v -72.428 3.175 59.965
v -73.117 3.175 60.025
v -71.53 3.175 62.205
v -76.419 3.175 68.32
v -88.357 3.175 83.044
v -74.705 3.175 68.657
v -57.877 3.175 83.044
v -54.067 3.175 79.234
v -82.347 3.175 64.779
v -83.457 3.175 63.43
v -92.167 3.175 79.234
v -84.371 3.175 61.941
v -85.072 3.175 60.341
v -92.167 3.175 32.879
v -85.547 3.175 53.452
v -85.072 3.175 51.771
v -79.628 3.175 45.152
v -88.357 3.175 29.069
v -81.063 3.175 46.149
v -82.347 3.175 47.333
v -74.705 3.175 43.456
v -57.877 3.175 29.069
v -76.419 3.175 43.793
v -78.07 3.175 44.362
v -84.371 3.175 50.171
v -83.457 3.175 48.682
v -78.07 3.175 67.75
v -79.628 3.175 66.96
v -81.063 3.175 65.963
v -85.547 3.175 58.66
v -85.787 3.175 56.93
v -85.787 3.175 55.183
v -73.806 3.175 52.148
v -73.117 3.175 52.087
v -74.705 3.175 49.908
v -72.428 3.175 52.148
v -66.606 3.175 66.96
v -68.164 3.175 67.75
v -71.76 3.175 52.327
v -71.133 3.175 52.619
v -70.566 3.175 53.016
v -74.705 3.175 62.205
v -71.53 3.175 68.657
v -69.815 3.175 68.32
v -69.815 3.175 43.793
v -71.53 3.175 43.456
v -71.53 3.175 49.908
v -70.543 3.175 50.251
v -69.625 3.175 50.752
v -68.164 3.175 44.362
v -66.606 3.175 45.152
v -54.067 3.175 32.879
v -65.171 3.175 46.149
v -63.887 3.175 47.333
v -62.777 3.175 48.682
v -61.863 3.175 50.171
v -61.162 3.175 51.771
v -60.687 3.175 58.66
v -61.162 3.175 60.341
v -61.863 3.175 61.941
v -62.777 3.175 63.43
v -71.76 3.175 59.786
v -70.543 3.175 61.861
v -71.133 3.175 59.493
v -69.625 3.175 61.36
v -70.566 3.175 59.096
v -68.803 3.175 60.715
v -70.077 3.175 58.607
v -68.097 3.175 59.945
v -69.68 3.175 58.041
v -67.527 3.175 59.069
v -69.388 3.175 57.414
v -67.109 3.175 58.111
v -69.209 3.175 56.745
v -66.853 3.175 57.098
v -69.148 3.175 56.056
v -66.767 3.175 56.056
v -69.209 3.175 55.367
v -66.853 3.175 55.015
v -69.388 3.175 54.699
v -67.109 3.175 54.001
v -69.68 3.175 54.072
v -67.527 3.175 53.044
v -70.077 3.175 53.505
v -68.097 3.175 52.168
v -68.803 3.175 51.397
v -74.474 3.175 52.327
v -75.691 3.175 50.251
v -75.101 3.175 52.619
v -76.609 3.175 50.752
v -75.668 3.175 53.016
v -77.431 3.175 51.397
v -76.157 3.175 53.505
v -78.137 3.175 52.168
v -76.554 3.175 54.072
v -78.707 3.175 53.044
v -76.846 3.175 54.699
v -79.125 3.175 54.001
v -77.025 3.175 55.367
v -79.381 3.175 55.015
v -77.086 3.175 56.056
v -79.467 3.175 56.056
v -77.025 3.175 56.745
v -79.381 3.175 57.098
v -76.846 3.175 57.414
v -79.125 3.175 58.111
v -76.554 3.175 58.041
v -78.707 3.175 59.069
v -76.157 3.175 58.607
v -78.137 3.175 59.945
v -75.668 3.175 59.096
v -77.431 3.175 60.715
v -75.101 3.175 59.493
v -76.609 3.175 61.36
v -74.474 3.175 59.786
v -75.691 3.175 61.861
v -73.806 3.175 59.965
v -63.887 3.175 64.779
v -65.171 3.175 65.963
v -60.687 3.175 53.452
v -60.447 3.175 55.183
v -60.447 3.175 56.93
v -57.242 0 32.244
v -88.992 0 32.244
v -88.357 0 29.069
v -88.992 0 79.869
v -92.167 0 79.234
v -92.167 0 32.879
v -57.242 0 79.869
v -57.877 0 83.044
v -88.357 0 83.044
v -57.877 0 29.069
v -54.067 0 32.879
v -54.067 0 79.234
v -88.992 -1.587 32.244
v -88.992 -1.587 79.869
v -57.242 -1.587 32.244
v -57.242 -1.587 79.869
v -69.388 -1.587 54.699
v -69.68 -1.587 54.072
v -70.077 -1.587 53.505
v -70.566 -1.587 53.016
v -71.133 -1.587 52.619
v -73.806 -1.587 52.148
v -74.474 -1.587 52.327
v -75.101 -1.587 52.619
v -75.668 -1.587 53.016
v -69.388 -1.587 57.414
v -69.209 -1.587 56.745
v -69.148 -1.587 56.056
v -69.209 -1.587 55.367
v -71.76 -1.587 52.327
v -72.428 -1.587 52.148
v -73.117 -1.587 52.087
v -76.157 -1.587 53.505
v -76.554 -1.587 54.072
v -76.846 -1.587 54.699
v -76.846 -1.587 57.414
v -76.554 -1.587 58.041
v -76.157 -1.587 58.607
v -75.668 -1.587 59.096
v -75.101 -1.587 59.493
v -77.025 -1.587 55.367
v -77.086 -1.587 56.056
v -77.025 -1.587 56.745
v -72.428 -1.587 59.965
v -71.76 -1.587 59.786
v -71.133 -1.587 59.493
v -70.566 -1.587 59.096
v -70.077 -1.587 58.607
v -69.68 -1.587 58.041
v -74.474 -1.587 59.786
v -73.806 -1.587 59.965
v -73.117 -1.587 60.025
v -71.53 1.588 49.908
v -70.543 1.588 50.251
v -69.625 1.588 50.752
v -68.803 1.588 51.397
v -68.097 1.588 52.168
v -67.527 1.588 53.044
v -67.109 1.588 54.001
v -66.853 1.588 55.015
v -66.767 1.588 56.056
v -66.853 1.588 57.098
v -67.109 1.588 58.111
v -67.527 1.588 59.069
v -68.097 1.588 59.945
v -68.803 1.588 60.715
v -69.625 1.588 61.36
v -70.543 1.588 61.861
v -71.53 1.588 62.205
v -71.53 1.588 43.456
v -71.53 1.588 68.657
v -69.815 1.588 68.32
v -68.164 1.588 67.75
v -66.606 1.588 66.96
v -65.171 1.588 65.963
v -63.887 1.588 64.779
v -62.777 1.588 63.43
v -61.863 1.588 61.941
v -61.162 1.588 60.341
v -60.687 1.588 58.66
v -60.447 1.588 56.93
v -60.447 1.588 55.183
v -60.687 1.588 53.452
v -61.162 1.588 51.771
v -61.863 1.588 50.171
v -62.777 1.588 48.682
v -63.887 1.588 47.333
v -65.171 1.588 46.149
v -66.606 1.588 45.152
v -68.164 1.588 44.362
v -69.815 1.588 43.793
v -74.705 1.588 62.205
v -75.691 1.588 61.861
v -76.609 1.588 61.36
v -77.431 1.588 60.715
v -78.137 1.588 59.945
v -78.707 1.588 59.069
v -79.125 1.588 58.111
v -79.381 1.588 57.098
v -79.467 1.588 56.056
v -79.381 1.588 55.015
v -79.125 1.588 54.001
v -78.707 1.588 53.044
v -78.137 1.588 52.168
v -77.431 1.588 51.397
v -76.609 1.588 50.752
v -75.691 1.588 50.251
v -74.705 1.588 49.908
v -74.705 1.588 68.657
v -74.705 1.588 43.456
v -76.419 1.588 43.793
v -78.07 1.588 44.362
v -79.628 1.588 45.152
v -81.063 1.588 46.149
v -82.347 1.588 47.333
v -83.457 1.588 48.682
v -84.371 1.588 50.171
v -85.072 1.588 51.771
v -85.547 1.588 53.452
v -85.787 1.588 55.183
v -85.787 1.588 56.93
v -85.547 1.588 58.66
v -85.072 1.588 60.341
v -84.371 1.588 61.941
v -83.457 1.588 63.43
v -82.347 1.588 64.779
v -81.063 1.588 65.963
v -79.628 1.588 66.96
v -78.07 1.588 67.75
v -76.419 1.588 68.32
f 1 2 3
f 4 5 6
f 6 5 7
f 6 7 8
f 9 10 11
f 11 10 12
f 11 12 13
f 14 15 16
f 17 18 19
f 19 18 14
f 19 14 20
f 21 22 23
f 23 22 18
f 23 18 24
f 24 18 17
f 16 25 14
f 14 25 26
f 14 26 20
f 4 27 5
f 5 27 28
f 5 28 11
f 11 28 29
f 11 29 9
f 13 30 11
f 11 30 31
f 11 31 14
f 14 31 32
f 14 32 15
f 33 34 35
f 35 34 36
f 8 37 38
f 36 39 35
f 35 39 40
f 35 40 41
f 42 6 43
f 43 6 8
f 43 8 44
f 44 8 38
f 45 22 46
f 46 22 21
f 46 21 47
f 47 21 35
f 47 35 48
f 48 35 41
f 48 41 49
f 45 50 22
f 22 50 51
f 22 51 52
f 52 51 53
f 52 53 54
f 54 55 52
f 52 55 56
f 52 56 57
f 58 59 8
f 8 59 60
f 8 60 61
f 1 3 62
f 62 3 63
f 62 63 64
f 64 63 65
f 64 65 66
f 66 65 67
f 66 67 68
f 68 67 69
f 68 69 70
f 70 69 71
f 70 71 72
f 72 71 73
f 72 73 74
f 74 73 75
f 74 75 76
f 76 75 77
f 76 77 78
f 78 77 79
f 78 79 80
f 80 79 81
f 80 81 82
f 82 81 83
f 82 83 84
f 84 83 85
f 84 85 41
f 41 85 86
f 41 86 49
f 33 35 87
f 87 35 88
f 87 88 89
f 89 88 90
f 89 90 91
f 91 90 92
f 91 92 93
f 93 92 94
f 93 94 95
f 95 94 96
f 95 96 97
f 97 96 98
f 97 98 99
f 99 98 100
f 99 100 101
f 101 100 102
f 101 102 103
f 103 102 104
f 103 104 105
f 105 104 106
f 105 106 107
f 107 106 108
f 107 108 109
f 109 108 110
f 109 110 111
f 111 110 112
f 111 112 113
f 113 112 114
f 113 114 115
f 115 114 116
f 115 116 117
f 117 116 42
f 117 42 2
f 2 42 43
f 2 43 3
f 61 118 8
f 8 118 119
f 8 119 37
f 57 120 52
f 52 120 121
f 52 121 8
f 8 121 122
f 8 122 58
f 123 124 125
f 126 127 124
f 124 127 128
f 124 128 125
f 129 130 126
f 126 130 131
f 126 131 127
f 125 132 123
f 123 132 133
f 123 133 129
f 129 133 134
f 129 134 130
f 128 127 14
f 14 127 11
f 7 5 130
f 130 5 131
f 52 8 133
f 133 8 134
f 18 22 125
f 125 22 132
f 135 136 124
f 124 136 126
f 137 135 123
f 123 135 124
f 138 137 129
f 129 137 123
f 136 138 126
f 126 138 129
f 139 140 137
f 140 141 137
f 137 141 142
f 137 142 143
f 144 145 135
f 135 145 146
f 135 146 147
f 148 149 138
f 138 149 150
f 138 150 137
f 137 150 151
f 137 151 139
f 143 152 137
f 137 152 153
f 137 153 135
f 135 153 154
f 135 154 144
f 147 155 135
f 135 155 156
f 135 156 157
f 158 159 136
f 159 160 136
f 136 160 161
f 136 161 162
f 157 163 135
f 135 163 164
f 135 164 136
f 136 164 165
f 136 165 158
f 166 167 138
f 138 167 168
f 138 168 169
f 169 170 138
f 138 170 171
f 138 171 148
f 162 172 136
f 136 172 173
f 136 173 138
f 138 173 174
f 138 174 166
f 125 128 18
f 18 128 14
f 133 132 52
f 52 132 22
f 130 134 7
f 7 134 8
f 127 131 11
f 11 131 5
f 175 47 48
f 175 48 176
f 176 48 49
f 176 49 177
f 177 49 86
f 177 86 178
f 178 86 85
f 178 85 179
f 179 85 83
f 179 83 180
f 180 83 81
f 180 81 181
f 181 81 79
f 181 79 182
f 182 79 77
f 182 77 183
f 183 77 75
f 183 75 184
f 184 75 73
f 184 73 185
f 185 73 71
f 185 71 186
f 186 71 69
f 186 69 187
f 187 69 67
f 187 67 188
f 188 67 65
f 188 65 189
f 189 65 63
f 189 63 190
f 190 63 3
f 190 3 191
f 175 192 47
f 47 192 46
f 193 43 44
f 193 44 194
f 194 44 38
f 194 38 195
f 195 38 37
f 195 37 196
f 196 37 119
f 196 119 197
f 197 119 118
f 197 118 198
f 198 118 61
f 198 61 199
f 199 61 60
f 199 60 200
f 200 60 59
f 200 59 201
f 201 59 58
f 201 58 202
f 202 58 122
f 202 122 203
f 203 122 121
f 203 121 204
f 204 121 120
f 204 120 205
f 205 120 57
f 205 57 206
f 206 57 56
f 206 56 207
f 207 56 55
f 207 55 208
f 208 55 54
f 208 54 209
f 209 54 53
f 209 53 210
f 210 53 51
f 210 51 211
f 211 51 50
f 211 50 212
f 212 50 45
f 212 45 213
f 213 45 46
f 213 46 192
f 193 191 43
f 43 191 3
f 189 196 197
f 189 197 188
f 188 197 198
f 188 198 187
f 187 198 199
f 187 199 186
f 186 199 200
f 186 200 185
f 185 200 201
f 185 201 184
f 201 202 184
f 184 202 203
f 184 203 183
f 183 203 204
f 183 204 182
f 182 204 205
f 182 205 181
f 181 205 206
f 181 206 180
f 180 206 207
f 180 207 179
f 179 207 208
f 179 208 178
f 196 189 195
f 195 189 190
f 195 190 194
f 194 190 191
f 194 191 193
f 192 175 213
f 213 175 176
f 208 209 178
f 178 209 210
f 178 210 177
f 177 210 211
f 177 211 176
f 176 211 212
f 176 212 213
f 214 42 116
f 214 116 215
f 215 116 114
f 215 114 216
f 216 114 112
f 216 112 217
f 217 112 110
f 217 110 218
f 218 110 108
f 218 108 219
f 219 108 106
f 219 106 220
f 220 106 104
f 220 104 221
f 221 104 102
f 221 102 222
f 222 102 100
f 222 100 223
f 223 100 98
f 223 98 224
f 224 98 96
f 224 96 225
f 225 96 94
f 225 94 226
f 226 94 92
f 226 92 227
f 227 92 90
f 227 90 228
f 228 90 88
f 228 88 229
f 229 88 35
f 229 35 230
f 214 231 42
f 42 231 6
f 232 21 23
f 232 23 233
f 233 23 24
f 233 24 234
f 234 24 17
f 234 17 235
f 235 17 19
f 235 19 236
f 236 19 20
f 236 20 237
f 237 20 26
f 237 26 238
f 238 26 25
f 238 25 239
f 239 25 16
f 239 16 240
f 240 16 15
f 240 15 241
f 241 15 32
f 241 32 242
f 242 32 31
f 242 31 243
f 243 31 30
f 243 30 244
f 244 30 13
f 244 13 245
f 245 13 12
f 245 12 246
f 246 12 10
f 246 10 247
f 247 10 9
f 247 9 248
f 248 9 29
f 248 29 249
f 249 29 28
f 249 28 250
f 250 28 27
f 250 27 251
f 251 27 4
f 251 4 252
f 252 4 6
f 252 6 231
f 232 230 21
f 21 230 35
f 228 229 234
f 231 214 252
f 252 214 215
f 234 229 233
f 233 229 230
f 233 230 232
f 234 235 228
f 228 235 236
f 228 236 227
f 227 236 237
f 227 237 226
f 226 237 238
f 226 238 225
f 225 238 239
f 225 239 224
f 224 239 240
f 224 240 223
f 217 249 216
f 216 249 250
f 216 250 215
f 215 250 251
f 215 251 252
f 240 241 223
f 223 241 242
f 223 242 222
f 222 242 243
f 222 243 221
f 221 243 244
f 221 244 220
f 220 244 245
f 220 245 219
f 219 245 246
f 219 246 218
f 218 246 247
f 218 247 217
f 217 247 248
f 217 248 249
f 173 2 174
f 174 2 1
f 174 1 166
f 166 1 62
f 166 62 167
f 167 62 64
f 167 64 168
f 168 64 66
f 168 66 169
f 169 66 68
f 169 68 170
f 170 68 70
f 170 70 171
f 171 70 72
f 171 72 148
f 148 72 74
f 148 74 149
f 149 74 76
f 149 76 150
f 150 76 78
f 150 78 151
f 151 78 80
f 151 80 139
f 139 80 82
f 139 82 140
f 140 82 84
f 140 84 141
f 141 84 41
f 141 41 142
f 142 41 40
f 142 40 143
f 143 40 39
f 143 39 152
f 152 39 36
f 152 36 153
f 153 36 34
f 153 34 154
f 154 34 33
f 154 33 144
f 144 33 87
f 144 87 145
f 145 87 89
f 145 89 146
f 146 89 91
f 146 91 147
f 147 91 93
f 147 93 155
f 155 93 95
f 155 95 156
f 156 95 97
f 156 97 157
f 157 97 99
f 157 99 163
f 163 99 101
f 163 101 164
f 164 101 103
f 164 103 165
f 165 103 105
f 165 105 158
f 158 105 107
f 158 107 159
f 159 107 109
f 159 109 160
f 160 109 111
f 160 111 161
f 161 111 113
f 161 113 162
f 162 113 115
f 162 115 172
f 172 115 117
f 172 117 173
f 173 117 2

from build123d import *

# Parameters (mm, degrees)
SKETCH1_W           = 38.1
SKETCH1_H           = 53.975
BOSS_EXTRUDE1_DEPTH = 3.175
SKETCH2_W           = 31.75
SKETCH2_H           = 47.625
BOSS_EXTRUDE2_DEPTH = 1.5875
CHAMFER1_SIZE       = 3.81
SKETCH3_R           = 1.905
CUT_EXTRUDE1_DEPTH  = 1.5875
SKETCH4_R           = 3.96875
CUT_EXTRUDE2_DEPTH  = 125.151898589


with BuildPart() as part:
    # Sketch1 → Boss-Extrude1 (new body)
    with BuildSketch(Plane(origin=(0, 0, 0), x_dir=(1, 0, 0), z_dir=(0, 1, 0))):
        with Locations((-73.117016369, -56.056184953)):
            Rectangle(SKETCH1_W, SKETCH1_H)
    extrude(amount=BOSS_EXTRUDE1_DEPTH)

    # Sketch2 → Boss-Extrude2 (add)
    with BuildSketch(Plane.XZ):
        with Locations((-73.117016369, 56.056184953)):
            Rectangle(SKETCH2_W, SKETCH2_H)
    extrude(amount=BOSS_EXTRUDE2_DEPTH)

    # Chamfer1
    chamfer1_edges = [part.edges().sort_by_distance(p)[0] for p in [
        (-92.167016369, 1.5875, 29.068684953),
        (-54.067016369, 1.5875, 29.068684953),
        (-54.067016369, 1.5875, 83.043684953),
        (-92.167016369, 1.5875, 83.043684953),
    ]]
    chamfer(chamfer1_edges, length=CHAMFER1_SIZE)

    # Sketch3 → Cut-Extrude1 (cut)
    with BuildSketch(Plane(origin=(0, 3.175, 0), x_dir=(1, 0, 0), z_dir=(0, 1, 0))):
        with Locations(Location((-73.117016369, -56.056184953, 0), (0, 0, 270))):
            Circle(SKETCH3_R)
        with BuildLine():
            Line((-74.704516369, -68.656575572), (-74.704516369, -62.204546015))
            ThreePointArc((-74.704516369, -62.204546015), (-79.467016369, -56.056184953), (-74.704516369, -49.907823891))
            Line((-74.704516369, -49.907823891), (-74.704516369, -43.455794334))
            ThreePointArc((-74.704516369, -43.455794334), (-85.817016369, -56.056184953), (-74.704516369, -68.656575572))
        make_face()
        with BuildLine():
            ThreePointArc((-71.529516369, -49.907823891), (-66.767016369, -56.056184953), (-71.529516369, -62.204546015))
            Line((-71.529516369, -62.204546015), (-71.529516369, -68.656575572))
            ThreePointArc((-71.529516369, -68.656575572), (-60.417016369, -56.056184953), (-71.529516369, -43.455794334))
            Line((-71.529516369, -43.455794334), (-71.529516369, -49.907823891))
        make_face()
    extrude(amount=-CUT_EXTRUDE1_DEPTH, mode=Mode.SUBTRACT)

    # Sketch4 → Cut-Extrude2 (cut, through all)
    with BuildSketch(Plane(origin=(0, 3.175, 0), x_dir=(-1, 0, 0), z_dir=(0, 1, 0))):
        with Locations(Location((73.117016369, 56.056184953, 0), (0, 0, 90))):
            Circle(SKETCH4_R)
    extrude(amount=-CUT_EXTRUDE2_DEPTH, mode=Mode.SUBTRACT)


solid = part.part
